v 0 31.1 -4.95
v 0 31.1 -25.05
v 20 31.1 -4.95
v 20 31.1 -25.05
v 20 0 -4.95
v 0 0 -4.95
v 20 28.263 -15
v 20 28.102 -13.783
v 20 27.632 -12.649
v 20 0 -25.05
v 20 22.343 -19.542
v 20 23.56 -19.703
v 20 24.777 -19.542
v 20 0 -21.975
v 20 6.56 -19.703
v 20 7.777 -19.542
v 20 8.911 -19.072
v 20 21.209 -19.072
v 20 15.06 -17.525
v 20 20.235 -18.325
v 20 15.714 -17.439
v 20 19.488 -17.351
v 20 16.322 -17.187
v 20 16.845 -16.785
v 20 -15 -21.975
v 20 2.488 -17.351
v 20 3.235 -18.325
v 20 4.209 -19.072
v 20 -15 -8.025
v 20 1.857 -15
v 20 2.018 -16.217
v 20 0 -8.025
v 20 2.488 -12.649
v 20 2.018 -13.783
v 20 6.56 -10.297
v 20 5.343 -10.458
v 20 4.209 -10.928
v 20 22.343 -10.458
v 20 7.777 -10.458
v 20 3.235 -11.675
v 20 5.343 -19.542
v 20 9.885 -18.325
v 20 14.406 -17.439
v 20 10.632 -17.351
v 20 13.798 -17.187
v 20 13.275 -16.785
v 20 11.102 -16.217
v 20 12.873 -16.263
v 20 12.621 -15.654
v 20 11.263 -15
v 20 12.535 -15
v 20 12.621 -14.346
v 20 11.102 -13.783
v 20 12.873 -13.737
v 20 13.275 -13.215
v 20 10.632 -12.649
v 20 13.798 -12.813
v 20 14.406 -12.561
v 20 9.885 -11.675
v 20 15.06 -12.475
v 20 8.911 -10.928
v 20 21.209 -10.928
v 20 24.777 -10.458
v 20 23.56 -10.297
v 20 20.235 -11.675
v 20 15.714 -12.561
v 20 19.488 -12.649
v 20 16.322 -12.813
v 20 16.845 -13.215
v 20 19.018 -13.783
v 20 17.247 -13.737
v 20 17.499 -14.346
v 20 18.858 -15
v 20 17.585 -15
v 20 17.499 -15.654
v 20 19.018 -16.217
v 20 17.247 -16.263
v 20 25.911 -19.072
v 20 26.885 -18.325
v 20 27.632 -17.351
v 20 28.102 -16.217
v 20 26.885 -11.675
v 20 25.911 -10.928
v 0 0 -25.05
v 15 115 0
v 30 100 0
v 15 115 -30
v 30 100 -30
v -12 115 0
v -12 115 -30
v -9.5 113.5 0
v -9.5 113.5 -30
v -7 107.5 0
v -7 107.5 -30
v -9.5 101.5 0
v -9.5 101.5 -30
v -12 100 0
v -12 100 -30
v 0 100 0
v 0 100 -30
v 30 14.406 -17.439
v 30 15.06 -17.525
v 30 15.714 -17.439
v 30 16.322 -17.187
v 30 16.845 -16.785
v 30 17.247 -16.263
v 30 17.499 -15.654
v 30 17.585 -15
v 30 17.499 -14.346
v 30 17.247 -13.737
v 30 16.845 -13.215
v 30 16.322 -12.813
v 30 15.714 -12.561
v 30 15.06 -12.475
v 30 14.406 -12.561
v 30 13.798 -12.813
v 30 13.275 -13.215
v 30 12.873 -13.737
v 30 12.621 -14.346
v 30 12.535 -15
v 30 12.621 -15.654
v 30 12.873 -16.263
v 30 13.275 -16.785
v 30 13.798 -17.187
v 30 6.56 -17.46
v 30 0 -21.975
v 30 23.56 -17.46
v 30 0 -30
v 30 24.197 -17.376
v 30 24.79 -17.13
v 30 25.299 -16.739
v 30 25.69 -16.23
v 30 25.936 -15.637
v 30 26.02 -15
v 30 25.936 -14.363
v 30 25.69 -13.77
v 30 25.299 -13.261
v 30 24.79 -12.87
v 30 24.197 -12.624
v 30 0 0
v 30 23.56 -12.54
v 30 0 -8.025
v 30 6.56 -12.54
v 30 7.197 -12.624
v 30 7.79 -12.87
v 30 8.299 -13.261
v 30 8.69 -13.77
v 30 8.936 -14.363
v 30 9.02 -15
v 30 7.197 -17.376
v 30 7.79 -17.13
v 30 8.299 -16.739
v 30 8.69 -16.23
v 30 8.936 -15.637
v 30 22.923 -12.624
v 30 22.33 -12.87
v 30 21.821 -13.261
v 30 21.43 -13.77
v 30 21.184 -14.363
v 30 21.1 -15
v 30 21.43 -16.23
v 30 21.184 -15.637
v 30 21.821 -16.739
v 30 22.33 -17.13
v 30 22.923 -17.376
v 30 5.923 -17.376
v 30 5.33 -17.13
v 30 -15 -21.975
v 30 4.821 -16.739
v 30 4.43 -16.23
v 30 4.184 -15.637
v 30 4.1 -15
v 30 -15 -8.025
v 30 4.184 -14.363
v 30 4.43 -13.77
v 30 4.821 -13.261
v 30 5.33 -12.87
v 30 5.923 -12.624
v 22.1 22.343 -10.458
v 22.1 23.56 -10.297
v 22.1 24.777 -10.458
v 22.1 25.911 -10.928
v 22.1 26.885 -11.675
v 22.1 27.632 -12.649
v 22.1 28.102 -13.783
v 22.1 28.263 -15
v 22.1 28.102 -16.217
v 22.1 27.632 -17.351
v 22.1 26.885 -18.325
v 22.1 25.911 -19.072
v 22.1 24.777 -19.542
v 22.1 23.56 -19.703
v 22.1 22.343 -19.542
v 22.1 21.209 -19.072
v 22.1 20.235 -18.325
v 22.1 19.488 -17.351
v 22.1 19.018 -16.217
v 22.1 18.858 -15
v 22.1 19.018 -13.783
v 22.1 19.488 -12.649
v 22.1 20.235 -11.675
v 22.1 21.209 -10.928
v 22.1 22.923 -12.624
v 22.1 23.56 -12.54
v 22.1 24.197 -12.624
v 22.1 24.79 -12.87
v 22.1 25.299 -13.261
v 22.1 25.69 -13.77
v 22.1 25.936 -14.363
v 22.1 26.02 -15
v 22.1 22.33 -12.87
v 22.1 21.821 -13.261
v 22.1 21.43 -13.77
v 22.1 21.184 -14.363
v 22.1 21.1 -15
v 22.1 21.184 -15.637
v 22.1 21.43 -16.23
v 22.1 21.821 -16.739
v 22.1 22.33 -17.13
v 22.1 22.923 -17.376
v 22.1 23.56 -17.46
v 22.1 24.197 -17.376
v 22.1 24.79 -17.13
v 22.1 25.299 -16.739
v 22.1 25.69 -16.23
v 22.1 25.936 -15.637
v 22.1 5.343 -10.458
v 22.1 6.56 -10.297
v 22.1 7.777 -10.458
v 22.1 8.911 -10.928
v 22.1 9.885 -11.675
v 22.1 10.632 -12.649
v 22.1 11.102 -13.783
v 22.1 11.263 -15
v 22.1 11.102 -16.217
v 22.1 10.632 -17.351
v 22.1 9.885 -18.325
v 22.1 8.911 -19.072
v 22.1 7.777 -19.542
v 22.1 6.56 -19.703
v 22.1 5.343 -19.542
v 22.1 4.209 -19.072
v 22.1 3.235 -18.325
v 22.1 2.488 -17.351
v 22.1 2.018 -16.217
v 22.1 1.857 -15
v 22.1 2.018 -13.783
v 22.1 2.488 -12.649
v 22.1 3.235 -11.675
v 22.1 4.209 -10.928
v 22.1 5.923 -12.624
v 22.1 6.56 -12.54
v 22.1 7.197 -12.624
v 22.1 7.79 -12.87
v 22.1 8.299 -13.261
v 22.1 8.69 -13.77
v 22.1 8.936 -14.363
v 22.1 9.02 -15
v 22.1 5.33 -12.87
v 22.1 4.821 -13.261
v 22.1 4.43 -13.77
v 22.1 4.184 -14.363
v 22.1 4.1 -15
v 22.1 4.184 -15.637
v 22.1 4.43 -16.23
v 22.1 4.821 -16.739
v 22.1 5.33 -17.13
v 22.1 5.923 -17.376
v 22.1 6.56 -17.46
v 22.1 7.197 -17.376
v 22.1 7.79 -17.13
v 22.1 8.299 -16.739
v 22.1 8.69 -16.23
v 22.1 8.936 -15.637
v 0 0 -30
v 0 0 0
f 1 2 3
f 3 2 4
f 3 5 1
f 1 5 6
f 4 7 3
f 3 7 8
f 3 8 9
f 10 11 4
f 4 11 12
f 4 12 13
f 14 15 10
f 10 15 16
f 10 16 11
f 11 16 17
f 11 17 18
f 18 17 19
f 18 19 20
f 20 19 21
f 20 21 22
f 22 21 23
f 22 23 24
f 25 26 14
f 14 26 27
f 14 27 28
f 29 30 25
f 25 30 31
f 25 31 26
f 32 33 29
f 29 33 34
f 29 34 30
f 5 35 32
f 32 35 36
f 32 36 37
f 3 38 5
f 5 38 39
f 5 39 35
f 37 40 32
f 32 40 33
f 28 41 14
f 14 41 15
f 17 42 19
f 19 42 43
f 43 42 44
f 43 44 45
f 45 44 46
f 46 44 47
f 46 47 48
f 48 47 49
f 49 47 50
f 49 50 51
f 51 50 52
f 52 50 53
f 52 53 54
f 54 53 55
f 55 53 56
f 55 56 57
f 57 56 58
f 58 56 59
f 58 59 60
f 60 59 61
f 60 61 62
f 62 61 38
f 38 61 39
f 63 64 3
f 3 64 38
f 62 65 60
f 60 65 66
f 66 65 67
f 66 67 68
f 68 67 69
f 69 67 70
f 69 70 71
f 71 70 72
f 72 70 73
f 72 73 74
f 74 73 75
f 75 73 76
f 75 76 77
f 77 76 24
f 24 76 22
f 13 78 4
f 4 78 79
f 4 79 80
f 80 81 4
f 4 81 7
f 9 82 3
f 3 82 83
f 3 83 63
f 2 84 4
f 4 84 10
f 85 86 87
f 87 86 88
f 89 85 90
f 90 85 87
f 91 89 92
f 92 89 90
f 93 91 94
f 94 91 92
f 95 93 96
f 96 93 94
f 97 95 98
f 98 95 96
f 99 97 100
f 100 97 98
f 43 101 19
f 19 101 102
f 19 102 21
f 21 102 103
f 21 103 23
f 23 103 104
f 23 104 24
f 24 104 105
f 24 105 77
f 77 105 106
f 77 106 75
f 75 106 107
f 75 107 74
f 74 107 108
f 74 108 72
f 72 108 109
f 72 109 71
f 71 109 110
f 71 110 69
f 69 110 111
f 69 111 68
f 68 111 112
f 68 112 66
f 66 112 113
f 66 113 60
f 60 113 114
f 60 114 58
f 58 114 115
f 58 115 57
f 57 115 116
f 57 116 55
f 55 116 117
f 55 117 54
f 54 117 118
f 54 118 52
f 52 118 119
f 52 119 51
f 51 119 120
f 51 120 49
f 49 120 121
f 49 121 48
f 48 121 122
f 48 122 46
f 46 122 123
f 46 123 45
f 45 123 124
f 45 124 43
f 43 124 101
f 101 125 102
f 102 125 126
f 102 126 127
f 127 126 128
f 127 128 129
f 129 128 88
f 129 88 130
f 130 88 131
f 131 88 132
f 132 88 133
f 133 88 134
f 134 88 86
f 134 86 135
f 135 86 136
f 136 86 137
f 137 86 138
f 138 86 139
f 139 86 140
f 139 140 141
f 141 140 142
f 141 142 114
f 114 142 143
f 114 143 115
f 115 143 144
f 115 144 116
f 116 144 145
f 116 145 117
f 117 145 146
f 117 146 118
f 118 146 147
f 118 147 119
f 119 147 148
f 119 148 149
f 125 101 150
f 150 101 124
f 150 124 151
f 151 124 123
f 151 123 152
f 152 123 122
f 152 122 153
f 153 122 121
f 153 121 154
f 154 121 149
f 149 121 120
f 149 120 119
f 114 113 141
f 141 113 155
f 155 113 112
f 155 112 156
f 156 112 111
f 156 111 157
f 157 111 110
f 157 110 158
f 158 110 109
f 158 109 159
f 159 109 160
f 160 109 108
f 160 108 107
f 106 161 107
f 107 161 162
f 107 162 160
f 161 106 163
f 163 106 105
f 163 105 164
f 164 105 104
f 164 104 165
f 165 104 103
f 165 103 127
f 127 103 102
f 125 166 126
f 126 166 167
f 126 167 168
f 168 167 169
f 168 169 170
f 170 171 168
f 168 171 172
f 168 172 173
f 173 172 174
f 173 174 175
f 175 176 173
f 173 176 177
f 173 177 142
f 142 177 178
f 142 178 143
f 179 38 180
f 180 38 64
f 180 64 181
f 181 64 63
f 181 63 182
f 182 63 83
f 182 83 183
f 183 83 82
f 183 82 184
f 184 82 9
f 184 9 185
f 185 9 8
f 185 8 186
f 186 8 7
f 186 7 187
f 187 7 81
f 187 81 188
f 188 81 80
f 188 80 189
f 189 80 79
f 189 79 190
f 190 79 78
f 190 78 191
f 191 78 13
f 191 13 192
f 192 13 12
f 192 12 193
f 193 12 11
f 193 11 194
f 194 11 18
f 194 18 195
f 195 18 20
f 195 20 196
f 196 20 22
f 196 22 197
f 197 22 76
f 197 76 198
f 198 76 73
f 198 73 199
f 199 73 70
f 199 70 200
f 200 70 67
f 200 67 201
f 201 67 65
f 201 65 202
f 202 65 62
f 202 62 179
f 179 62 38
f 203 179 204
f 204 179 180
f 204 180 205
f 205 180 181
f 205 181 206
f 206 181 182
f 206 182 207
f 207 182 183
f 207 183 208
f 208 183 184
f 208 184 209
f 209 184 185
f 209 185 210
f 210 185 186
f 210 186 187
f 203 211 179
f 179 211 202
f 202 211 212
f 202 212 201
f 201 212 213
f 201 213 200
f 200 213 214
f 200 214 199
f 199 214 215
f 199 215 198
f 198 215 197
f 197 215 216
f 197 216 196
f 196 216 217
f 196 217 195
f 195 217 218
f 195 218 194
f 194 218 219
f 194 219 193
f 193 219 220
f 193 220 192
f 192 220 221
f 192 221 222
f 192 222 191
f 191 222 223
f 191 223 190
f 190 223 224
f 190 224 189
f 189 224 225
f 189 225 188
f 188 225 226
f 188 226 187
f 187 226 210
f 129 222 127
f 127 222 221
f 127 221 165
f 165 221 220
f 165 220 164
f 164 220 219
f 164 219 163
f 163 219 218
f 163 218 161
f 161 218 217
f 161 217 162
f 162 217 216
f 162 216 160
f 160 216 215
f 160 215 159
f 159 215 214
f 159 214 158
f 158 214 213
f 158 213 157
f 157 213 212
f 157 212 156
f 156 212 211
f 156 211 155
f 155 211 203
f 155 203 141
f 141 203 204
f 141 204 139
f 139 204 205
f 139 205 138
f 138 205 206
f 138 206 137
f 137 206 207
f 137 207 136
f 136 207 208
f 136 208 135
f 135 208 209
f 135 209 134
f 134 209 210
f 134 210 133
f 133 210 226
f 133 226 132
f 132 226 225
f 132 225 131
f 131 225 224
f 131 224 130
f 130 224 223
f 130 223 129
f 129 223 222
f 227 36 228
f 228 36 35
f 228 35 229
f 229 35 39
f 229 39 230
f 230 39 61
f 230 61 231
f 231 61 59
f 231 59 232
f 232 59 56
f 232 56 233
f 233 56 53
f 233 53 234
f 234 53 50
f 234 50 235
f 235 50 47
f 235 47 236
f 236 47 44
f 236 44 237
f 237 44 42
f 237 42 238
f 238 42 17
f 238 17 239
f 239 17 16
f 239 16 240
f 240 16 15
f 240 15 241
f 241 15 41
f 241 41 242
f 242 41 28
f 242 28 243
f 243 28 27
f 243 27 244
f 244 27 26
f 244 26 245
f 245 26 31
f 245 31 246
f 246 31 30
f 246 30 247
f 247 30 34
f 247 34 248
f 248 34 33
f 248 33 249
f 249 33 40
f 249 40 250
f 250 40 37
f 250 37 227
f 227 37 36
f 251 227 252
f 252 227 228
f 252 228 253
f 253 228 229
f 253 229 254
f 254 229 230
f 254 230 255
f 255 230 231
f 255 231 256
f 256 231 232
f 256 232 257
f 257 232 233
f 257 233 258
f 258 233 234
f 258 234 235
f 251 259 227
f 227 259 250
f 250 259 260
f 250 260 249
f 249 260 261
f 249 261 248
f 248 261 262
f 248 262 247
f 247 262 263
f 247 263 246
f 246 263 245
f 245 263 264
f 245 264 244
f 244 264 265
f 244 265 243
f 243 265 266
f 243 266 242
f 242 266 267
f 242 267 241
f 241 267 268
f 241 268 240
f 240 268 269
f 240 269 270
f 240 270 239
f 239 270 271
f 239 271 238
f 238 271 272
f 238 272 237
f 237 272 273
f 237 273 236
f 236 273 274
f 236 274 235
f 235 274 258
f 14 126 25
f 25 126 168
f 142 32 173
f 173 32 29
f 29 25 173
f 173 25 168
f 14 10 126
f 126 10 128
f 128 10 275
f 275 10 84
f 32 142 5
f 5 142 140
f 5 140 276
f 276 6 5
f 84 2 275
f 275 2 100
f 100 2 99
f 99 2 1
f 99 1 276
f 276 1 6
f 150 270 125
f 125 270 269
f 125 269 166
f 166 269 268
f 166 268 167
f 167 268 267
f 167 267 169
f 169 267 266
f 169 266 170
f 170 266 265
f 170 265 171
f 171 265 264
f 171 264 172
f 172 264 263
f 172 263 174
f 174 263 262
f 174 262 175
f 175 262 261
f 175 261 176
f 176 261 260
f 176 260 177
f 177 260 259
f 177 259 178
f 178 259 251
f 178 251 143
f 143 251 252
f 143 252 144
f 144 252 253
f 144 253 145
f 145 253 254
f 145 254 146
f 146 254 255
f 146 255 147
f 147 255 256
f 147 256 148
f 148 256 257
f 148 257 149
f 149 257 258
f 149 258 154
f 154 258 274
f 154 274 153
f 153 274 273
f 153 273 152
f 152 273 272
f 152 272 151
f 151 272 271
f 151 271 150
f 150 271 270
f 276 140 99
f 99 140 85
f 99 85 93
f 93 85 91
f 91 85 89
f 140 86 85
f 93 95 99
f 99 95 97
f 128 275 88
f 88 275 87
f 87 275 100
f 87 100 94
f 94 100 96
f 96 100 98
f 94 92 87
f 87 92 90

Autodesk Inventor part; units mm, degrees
ref_plane "YZ Plane" through (0, 0, 0) normal (1, 0, 0) x (0, 1, 0)
ref_plane "XZ Plane" through (0, 0, 0) normal (0, 1, 0) x (-1, 0, 0)
ref_plane "XY Plane" through (0, 0, 0) normal (0, 0, 1) x (1, 0, 0)
sketch "Sketch1" plane through (0, 0, 0) normal (0, 0, 1) x (1, 0, 0)
  line L0 (0, 0) -> (25, 0)
  line L1 (25, 0) -> (25, 40)
  line L2 (25, 40) -> (0, 40)
  line L3 (0, 40) -> (0, 0)
  dimension "d1" = 25
  dimension "d2" = 40
  dimension "d3" = 25
extrude "Extrusion1" add sketch "Sketch1" against normal blind 30
sketch "Sketch2" plane through (25, 0, 0) normal (1, 0, 0) x (0, 0, -1)
  line L0 (0, 0) -> (30, 0) projected
  circle A0 centre (15, 6.56) radius 2.46
extrude "Extrusion2" cut sketch "Sketch2" against normal blind 30
sketch "Sketch3" plane through (0, 0, 0) normal (-1, 0, 0) x (0, 0, 1)
  line L0 (0, 0) -> (-30, 0) projected
  line L1 (-25.05, 0) -> (-4.95, 0)
  line L2 (-4.95, 0) -> (-4.95, 33.12)
  line L3 (-4.95, 33.12) -> (-25.05, 33.12)
  line L4 (-25.05, 33.12) -> (-25.05, 0)
  dimension "d11" = 20.1
extrude "Extrusion3" cut sketch "Sketch3" against normal blind 20
sketch "Sketch4" plane through (0, 0, 0) normal (0, -1, 0) x (1, 0, 0)
  line L0 (20, -4.95) -> (20, -25.05) projected
  line L1 (20, -15) -> (25, -15)
  line L2 (25, 0) -> (25, -30) projected
  line L3 (20, -8.025) -> (25, -8.025)
  line L4 (25, -8.025) -> (25, -21.975)
  line L5 (25, -21.975) -> (20, -21.975)
  line L6 (20, -21.975) -> (20, -8.025)
  line L7 (20, -8.025) -> (25, -21.975) construction
  line L8 (25, -8.025) -> (20, -21.975) construction
  line L9 (25, -12.54) -> (25, -17.46) projected
  point P0 (0, 0)
  point P1 (22.5, -15)
  dimension "d14" = 13.95
extrude "Extrusion4" add sketch "Sketch4" along normal blind 15
sketch "Sketch5" plane through (20, 0, 0) normal (-1, 0, 0) x (0, 0, 1)
  circle A0 centre (-15, 6.56) radius 2.46 projected
  circle A1 centre (-15, 6.56) radius 4.7025
  circle A2 centre (-15, 6.56) radius 2.46 projected
  circle A3 centre (-15, 6.56) radius 2.46
  point P0 (0, 0)
  dimension "d17" = 9.405
extrude "Extrusion5" cut sketch "Sketch5" against normal blind 2.1
sketch "Sketch6" plane through (25, 0, 0) normal (1, 0, 0) x (0, 0, -1)
  circle A0 centre (15, 6.56) radius 4.7025 projected
  line L0 (15, 6.56) -> (15, 23.56)
  circle A1 centre (15, 23.56) radius 2.46
  point P0 (0, 0)
  dimension "d20" = 17
  dimension "d21" = 4.92
extrude "Extrusion6" cut sketch "Sketch6" against normal blind 10 contours A1
sketch "Sketch7" plane through (20, 0, 0) normal (-1, 0, 0) x (0, 0, 1)
  circle A0 centre (-15, 23.56) radius 2.46 projected
  circle A1 centre (-15, 23.56) radius 4.7025
  point P0 (0, 0)
  dimension "d24" = 9.405
extrude "Extrusion7" cut sketch "Sketch7" against normal blind 2.1
sketch "Sketch9" plane through (25, 0, 0) normal (1, 0, 0) x (0, 0, -1)
  circle A0 centre (15, 6.56) radius 2.46 projected
  circle A1 centre (15, 6.56) radius 2.46
  circle A2 centre (15, 23.56) radius 2.46 projected
  circle A3 centre (15, 23.56) radius 2.46
  line L0 (30, 40) -> (30, 0) projected
  line L1 (30, 0) -> (30, 40)
  line L2 (30, 40) -> (0, 40)
  line L3 (0, 40) -> (0, 0)
  line L4 (0, 0) -> (8.025, 0) projected
  line L5 (21.975, 0) -> (21.975, -15)
  line L6 (21.975, -15) -> (8.025, -15)
  line L7 (8.025, -15) -> (8.025, 0)
  line L8 (0, 0) -> (8.025, 0)
  line L9 (21.975, 0) -> (30, 0)
extrude "Extrusion8" add sketch "Sketch9" along normal blind 5
sketch "Sketch10" plane through (0, 40, 0) normal (0, 1, 0) x (1, 0, 0)
  line L0 (0, 30) -> (30, 30) projected
  line L1 (30, 0) -> (0, 0) projected
  line L2 (0, 30) -> (30, 30)
  line L3 (30, 30) -> (30, 0)
  line L4 (30, 0) -> (0, 0)
  line L5 (0, 0) -> (0, 30)
extrude "Extrusion9" add sketch "Sketch10" along normal blind 30
sketch "Sketch12" plane through (30, 0, 0) normal (1, 0, 0) x (0, 0, -1)
  circle A0 centre (15, 6.56) radius 2.46 projected
  line L0 (15, 6.56) -> (15, 15.06)
  circle A1 centre (15, 15.06) radius 2.525
  point P0 (0, 0)
  dimension "d31" = 8.5
  dimension "d33" = 5.05
extrude "Extrusion10" cut sketch "Sketch12" against normal blind 30 contours A1
sketch "Sketch14" plane through (0, 0, 0) normal (0, 0, 1) x (1, 0, 0)
  line L0 (30, 70) -> (0, 70) projected
  line L1 (0, 70) -> (0, 85)
  line L2 (30, 100) -> (15, 115)
  line L3 (-12, 115) -> (15, 115)
  line L4 (30, 0) -> (30, 70) projected
  line L5 (30, 100) -> (30, 70)
  line L6 (-9.5, 113.5) -> (-12, 115)
  line L7 (-9.5, 101.5) -> (-12, 100)
  line L8 (-7, 107.5) -> (-9.5, 101.5)
  line L9 (-7, 107.5) -> (-9.5, 113.5)
  line L10 (0, 100) -> (0, 85)
  line L11 (0, 100) -> (-12, 100)
  point P0 (0, 0)
  dimension "d49" = 15
  dimension "d61" = 12
extrude "Extrusion12" add sketch "Sketch14" against normal blind 30
sketch "Sketch15" plane through (0, 0, -25.05) normal (-1, 0, 0) x (0, 0, 1)
  line L0 (0, 33.12) -> (20.1, 33.12) projected
  line L1 (20.1, 33.12) -> (20.1, 0) projected
  line L2 (0, 33.12) -> (20.1, 33.12)
  line L3 (20.1, 33.12) -> (20.1, 31.1)
  line L4 (20.1, 31.1) -> (0, 31.1)
  line L5 (0, 31.1) -> (0, 33.12)
  point P0 (25.05, 0)
  dimension "d57" = 2.02
extrude "Extrusion13" add sketch "Sketch15" against normal blind 20
properties part number "10mm_x_30mm"
